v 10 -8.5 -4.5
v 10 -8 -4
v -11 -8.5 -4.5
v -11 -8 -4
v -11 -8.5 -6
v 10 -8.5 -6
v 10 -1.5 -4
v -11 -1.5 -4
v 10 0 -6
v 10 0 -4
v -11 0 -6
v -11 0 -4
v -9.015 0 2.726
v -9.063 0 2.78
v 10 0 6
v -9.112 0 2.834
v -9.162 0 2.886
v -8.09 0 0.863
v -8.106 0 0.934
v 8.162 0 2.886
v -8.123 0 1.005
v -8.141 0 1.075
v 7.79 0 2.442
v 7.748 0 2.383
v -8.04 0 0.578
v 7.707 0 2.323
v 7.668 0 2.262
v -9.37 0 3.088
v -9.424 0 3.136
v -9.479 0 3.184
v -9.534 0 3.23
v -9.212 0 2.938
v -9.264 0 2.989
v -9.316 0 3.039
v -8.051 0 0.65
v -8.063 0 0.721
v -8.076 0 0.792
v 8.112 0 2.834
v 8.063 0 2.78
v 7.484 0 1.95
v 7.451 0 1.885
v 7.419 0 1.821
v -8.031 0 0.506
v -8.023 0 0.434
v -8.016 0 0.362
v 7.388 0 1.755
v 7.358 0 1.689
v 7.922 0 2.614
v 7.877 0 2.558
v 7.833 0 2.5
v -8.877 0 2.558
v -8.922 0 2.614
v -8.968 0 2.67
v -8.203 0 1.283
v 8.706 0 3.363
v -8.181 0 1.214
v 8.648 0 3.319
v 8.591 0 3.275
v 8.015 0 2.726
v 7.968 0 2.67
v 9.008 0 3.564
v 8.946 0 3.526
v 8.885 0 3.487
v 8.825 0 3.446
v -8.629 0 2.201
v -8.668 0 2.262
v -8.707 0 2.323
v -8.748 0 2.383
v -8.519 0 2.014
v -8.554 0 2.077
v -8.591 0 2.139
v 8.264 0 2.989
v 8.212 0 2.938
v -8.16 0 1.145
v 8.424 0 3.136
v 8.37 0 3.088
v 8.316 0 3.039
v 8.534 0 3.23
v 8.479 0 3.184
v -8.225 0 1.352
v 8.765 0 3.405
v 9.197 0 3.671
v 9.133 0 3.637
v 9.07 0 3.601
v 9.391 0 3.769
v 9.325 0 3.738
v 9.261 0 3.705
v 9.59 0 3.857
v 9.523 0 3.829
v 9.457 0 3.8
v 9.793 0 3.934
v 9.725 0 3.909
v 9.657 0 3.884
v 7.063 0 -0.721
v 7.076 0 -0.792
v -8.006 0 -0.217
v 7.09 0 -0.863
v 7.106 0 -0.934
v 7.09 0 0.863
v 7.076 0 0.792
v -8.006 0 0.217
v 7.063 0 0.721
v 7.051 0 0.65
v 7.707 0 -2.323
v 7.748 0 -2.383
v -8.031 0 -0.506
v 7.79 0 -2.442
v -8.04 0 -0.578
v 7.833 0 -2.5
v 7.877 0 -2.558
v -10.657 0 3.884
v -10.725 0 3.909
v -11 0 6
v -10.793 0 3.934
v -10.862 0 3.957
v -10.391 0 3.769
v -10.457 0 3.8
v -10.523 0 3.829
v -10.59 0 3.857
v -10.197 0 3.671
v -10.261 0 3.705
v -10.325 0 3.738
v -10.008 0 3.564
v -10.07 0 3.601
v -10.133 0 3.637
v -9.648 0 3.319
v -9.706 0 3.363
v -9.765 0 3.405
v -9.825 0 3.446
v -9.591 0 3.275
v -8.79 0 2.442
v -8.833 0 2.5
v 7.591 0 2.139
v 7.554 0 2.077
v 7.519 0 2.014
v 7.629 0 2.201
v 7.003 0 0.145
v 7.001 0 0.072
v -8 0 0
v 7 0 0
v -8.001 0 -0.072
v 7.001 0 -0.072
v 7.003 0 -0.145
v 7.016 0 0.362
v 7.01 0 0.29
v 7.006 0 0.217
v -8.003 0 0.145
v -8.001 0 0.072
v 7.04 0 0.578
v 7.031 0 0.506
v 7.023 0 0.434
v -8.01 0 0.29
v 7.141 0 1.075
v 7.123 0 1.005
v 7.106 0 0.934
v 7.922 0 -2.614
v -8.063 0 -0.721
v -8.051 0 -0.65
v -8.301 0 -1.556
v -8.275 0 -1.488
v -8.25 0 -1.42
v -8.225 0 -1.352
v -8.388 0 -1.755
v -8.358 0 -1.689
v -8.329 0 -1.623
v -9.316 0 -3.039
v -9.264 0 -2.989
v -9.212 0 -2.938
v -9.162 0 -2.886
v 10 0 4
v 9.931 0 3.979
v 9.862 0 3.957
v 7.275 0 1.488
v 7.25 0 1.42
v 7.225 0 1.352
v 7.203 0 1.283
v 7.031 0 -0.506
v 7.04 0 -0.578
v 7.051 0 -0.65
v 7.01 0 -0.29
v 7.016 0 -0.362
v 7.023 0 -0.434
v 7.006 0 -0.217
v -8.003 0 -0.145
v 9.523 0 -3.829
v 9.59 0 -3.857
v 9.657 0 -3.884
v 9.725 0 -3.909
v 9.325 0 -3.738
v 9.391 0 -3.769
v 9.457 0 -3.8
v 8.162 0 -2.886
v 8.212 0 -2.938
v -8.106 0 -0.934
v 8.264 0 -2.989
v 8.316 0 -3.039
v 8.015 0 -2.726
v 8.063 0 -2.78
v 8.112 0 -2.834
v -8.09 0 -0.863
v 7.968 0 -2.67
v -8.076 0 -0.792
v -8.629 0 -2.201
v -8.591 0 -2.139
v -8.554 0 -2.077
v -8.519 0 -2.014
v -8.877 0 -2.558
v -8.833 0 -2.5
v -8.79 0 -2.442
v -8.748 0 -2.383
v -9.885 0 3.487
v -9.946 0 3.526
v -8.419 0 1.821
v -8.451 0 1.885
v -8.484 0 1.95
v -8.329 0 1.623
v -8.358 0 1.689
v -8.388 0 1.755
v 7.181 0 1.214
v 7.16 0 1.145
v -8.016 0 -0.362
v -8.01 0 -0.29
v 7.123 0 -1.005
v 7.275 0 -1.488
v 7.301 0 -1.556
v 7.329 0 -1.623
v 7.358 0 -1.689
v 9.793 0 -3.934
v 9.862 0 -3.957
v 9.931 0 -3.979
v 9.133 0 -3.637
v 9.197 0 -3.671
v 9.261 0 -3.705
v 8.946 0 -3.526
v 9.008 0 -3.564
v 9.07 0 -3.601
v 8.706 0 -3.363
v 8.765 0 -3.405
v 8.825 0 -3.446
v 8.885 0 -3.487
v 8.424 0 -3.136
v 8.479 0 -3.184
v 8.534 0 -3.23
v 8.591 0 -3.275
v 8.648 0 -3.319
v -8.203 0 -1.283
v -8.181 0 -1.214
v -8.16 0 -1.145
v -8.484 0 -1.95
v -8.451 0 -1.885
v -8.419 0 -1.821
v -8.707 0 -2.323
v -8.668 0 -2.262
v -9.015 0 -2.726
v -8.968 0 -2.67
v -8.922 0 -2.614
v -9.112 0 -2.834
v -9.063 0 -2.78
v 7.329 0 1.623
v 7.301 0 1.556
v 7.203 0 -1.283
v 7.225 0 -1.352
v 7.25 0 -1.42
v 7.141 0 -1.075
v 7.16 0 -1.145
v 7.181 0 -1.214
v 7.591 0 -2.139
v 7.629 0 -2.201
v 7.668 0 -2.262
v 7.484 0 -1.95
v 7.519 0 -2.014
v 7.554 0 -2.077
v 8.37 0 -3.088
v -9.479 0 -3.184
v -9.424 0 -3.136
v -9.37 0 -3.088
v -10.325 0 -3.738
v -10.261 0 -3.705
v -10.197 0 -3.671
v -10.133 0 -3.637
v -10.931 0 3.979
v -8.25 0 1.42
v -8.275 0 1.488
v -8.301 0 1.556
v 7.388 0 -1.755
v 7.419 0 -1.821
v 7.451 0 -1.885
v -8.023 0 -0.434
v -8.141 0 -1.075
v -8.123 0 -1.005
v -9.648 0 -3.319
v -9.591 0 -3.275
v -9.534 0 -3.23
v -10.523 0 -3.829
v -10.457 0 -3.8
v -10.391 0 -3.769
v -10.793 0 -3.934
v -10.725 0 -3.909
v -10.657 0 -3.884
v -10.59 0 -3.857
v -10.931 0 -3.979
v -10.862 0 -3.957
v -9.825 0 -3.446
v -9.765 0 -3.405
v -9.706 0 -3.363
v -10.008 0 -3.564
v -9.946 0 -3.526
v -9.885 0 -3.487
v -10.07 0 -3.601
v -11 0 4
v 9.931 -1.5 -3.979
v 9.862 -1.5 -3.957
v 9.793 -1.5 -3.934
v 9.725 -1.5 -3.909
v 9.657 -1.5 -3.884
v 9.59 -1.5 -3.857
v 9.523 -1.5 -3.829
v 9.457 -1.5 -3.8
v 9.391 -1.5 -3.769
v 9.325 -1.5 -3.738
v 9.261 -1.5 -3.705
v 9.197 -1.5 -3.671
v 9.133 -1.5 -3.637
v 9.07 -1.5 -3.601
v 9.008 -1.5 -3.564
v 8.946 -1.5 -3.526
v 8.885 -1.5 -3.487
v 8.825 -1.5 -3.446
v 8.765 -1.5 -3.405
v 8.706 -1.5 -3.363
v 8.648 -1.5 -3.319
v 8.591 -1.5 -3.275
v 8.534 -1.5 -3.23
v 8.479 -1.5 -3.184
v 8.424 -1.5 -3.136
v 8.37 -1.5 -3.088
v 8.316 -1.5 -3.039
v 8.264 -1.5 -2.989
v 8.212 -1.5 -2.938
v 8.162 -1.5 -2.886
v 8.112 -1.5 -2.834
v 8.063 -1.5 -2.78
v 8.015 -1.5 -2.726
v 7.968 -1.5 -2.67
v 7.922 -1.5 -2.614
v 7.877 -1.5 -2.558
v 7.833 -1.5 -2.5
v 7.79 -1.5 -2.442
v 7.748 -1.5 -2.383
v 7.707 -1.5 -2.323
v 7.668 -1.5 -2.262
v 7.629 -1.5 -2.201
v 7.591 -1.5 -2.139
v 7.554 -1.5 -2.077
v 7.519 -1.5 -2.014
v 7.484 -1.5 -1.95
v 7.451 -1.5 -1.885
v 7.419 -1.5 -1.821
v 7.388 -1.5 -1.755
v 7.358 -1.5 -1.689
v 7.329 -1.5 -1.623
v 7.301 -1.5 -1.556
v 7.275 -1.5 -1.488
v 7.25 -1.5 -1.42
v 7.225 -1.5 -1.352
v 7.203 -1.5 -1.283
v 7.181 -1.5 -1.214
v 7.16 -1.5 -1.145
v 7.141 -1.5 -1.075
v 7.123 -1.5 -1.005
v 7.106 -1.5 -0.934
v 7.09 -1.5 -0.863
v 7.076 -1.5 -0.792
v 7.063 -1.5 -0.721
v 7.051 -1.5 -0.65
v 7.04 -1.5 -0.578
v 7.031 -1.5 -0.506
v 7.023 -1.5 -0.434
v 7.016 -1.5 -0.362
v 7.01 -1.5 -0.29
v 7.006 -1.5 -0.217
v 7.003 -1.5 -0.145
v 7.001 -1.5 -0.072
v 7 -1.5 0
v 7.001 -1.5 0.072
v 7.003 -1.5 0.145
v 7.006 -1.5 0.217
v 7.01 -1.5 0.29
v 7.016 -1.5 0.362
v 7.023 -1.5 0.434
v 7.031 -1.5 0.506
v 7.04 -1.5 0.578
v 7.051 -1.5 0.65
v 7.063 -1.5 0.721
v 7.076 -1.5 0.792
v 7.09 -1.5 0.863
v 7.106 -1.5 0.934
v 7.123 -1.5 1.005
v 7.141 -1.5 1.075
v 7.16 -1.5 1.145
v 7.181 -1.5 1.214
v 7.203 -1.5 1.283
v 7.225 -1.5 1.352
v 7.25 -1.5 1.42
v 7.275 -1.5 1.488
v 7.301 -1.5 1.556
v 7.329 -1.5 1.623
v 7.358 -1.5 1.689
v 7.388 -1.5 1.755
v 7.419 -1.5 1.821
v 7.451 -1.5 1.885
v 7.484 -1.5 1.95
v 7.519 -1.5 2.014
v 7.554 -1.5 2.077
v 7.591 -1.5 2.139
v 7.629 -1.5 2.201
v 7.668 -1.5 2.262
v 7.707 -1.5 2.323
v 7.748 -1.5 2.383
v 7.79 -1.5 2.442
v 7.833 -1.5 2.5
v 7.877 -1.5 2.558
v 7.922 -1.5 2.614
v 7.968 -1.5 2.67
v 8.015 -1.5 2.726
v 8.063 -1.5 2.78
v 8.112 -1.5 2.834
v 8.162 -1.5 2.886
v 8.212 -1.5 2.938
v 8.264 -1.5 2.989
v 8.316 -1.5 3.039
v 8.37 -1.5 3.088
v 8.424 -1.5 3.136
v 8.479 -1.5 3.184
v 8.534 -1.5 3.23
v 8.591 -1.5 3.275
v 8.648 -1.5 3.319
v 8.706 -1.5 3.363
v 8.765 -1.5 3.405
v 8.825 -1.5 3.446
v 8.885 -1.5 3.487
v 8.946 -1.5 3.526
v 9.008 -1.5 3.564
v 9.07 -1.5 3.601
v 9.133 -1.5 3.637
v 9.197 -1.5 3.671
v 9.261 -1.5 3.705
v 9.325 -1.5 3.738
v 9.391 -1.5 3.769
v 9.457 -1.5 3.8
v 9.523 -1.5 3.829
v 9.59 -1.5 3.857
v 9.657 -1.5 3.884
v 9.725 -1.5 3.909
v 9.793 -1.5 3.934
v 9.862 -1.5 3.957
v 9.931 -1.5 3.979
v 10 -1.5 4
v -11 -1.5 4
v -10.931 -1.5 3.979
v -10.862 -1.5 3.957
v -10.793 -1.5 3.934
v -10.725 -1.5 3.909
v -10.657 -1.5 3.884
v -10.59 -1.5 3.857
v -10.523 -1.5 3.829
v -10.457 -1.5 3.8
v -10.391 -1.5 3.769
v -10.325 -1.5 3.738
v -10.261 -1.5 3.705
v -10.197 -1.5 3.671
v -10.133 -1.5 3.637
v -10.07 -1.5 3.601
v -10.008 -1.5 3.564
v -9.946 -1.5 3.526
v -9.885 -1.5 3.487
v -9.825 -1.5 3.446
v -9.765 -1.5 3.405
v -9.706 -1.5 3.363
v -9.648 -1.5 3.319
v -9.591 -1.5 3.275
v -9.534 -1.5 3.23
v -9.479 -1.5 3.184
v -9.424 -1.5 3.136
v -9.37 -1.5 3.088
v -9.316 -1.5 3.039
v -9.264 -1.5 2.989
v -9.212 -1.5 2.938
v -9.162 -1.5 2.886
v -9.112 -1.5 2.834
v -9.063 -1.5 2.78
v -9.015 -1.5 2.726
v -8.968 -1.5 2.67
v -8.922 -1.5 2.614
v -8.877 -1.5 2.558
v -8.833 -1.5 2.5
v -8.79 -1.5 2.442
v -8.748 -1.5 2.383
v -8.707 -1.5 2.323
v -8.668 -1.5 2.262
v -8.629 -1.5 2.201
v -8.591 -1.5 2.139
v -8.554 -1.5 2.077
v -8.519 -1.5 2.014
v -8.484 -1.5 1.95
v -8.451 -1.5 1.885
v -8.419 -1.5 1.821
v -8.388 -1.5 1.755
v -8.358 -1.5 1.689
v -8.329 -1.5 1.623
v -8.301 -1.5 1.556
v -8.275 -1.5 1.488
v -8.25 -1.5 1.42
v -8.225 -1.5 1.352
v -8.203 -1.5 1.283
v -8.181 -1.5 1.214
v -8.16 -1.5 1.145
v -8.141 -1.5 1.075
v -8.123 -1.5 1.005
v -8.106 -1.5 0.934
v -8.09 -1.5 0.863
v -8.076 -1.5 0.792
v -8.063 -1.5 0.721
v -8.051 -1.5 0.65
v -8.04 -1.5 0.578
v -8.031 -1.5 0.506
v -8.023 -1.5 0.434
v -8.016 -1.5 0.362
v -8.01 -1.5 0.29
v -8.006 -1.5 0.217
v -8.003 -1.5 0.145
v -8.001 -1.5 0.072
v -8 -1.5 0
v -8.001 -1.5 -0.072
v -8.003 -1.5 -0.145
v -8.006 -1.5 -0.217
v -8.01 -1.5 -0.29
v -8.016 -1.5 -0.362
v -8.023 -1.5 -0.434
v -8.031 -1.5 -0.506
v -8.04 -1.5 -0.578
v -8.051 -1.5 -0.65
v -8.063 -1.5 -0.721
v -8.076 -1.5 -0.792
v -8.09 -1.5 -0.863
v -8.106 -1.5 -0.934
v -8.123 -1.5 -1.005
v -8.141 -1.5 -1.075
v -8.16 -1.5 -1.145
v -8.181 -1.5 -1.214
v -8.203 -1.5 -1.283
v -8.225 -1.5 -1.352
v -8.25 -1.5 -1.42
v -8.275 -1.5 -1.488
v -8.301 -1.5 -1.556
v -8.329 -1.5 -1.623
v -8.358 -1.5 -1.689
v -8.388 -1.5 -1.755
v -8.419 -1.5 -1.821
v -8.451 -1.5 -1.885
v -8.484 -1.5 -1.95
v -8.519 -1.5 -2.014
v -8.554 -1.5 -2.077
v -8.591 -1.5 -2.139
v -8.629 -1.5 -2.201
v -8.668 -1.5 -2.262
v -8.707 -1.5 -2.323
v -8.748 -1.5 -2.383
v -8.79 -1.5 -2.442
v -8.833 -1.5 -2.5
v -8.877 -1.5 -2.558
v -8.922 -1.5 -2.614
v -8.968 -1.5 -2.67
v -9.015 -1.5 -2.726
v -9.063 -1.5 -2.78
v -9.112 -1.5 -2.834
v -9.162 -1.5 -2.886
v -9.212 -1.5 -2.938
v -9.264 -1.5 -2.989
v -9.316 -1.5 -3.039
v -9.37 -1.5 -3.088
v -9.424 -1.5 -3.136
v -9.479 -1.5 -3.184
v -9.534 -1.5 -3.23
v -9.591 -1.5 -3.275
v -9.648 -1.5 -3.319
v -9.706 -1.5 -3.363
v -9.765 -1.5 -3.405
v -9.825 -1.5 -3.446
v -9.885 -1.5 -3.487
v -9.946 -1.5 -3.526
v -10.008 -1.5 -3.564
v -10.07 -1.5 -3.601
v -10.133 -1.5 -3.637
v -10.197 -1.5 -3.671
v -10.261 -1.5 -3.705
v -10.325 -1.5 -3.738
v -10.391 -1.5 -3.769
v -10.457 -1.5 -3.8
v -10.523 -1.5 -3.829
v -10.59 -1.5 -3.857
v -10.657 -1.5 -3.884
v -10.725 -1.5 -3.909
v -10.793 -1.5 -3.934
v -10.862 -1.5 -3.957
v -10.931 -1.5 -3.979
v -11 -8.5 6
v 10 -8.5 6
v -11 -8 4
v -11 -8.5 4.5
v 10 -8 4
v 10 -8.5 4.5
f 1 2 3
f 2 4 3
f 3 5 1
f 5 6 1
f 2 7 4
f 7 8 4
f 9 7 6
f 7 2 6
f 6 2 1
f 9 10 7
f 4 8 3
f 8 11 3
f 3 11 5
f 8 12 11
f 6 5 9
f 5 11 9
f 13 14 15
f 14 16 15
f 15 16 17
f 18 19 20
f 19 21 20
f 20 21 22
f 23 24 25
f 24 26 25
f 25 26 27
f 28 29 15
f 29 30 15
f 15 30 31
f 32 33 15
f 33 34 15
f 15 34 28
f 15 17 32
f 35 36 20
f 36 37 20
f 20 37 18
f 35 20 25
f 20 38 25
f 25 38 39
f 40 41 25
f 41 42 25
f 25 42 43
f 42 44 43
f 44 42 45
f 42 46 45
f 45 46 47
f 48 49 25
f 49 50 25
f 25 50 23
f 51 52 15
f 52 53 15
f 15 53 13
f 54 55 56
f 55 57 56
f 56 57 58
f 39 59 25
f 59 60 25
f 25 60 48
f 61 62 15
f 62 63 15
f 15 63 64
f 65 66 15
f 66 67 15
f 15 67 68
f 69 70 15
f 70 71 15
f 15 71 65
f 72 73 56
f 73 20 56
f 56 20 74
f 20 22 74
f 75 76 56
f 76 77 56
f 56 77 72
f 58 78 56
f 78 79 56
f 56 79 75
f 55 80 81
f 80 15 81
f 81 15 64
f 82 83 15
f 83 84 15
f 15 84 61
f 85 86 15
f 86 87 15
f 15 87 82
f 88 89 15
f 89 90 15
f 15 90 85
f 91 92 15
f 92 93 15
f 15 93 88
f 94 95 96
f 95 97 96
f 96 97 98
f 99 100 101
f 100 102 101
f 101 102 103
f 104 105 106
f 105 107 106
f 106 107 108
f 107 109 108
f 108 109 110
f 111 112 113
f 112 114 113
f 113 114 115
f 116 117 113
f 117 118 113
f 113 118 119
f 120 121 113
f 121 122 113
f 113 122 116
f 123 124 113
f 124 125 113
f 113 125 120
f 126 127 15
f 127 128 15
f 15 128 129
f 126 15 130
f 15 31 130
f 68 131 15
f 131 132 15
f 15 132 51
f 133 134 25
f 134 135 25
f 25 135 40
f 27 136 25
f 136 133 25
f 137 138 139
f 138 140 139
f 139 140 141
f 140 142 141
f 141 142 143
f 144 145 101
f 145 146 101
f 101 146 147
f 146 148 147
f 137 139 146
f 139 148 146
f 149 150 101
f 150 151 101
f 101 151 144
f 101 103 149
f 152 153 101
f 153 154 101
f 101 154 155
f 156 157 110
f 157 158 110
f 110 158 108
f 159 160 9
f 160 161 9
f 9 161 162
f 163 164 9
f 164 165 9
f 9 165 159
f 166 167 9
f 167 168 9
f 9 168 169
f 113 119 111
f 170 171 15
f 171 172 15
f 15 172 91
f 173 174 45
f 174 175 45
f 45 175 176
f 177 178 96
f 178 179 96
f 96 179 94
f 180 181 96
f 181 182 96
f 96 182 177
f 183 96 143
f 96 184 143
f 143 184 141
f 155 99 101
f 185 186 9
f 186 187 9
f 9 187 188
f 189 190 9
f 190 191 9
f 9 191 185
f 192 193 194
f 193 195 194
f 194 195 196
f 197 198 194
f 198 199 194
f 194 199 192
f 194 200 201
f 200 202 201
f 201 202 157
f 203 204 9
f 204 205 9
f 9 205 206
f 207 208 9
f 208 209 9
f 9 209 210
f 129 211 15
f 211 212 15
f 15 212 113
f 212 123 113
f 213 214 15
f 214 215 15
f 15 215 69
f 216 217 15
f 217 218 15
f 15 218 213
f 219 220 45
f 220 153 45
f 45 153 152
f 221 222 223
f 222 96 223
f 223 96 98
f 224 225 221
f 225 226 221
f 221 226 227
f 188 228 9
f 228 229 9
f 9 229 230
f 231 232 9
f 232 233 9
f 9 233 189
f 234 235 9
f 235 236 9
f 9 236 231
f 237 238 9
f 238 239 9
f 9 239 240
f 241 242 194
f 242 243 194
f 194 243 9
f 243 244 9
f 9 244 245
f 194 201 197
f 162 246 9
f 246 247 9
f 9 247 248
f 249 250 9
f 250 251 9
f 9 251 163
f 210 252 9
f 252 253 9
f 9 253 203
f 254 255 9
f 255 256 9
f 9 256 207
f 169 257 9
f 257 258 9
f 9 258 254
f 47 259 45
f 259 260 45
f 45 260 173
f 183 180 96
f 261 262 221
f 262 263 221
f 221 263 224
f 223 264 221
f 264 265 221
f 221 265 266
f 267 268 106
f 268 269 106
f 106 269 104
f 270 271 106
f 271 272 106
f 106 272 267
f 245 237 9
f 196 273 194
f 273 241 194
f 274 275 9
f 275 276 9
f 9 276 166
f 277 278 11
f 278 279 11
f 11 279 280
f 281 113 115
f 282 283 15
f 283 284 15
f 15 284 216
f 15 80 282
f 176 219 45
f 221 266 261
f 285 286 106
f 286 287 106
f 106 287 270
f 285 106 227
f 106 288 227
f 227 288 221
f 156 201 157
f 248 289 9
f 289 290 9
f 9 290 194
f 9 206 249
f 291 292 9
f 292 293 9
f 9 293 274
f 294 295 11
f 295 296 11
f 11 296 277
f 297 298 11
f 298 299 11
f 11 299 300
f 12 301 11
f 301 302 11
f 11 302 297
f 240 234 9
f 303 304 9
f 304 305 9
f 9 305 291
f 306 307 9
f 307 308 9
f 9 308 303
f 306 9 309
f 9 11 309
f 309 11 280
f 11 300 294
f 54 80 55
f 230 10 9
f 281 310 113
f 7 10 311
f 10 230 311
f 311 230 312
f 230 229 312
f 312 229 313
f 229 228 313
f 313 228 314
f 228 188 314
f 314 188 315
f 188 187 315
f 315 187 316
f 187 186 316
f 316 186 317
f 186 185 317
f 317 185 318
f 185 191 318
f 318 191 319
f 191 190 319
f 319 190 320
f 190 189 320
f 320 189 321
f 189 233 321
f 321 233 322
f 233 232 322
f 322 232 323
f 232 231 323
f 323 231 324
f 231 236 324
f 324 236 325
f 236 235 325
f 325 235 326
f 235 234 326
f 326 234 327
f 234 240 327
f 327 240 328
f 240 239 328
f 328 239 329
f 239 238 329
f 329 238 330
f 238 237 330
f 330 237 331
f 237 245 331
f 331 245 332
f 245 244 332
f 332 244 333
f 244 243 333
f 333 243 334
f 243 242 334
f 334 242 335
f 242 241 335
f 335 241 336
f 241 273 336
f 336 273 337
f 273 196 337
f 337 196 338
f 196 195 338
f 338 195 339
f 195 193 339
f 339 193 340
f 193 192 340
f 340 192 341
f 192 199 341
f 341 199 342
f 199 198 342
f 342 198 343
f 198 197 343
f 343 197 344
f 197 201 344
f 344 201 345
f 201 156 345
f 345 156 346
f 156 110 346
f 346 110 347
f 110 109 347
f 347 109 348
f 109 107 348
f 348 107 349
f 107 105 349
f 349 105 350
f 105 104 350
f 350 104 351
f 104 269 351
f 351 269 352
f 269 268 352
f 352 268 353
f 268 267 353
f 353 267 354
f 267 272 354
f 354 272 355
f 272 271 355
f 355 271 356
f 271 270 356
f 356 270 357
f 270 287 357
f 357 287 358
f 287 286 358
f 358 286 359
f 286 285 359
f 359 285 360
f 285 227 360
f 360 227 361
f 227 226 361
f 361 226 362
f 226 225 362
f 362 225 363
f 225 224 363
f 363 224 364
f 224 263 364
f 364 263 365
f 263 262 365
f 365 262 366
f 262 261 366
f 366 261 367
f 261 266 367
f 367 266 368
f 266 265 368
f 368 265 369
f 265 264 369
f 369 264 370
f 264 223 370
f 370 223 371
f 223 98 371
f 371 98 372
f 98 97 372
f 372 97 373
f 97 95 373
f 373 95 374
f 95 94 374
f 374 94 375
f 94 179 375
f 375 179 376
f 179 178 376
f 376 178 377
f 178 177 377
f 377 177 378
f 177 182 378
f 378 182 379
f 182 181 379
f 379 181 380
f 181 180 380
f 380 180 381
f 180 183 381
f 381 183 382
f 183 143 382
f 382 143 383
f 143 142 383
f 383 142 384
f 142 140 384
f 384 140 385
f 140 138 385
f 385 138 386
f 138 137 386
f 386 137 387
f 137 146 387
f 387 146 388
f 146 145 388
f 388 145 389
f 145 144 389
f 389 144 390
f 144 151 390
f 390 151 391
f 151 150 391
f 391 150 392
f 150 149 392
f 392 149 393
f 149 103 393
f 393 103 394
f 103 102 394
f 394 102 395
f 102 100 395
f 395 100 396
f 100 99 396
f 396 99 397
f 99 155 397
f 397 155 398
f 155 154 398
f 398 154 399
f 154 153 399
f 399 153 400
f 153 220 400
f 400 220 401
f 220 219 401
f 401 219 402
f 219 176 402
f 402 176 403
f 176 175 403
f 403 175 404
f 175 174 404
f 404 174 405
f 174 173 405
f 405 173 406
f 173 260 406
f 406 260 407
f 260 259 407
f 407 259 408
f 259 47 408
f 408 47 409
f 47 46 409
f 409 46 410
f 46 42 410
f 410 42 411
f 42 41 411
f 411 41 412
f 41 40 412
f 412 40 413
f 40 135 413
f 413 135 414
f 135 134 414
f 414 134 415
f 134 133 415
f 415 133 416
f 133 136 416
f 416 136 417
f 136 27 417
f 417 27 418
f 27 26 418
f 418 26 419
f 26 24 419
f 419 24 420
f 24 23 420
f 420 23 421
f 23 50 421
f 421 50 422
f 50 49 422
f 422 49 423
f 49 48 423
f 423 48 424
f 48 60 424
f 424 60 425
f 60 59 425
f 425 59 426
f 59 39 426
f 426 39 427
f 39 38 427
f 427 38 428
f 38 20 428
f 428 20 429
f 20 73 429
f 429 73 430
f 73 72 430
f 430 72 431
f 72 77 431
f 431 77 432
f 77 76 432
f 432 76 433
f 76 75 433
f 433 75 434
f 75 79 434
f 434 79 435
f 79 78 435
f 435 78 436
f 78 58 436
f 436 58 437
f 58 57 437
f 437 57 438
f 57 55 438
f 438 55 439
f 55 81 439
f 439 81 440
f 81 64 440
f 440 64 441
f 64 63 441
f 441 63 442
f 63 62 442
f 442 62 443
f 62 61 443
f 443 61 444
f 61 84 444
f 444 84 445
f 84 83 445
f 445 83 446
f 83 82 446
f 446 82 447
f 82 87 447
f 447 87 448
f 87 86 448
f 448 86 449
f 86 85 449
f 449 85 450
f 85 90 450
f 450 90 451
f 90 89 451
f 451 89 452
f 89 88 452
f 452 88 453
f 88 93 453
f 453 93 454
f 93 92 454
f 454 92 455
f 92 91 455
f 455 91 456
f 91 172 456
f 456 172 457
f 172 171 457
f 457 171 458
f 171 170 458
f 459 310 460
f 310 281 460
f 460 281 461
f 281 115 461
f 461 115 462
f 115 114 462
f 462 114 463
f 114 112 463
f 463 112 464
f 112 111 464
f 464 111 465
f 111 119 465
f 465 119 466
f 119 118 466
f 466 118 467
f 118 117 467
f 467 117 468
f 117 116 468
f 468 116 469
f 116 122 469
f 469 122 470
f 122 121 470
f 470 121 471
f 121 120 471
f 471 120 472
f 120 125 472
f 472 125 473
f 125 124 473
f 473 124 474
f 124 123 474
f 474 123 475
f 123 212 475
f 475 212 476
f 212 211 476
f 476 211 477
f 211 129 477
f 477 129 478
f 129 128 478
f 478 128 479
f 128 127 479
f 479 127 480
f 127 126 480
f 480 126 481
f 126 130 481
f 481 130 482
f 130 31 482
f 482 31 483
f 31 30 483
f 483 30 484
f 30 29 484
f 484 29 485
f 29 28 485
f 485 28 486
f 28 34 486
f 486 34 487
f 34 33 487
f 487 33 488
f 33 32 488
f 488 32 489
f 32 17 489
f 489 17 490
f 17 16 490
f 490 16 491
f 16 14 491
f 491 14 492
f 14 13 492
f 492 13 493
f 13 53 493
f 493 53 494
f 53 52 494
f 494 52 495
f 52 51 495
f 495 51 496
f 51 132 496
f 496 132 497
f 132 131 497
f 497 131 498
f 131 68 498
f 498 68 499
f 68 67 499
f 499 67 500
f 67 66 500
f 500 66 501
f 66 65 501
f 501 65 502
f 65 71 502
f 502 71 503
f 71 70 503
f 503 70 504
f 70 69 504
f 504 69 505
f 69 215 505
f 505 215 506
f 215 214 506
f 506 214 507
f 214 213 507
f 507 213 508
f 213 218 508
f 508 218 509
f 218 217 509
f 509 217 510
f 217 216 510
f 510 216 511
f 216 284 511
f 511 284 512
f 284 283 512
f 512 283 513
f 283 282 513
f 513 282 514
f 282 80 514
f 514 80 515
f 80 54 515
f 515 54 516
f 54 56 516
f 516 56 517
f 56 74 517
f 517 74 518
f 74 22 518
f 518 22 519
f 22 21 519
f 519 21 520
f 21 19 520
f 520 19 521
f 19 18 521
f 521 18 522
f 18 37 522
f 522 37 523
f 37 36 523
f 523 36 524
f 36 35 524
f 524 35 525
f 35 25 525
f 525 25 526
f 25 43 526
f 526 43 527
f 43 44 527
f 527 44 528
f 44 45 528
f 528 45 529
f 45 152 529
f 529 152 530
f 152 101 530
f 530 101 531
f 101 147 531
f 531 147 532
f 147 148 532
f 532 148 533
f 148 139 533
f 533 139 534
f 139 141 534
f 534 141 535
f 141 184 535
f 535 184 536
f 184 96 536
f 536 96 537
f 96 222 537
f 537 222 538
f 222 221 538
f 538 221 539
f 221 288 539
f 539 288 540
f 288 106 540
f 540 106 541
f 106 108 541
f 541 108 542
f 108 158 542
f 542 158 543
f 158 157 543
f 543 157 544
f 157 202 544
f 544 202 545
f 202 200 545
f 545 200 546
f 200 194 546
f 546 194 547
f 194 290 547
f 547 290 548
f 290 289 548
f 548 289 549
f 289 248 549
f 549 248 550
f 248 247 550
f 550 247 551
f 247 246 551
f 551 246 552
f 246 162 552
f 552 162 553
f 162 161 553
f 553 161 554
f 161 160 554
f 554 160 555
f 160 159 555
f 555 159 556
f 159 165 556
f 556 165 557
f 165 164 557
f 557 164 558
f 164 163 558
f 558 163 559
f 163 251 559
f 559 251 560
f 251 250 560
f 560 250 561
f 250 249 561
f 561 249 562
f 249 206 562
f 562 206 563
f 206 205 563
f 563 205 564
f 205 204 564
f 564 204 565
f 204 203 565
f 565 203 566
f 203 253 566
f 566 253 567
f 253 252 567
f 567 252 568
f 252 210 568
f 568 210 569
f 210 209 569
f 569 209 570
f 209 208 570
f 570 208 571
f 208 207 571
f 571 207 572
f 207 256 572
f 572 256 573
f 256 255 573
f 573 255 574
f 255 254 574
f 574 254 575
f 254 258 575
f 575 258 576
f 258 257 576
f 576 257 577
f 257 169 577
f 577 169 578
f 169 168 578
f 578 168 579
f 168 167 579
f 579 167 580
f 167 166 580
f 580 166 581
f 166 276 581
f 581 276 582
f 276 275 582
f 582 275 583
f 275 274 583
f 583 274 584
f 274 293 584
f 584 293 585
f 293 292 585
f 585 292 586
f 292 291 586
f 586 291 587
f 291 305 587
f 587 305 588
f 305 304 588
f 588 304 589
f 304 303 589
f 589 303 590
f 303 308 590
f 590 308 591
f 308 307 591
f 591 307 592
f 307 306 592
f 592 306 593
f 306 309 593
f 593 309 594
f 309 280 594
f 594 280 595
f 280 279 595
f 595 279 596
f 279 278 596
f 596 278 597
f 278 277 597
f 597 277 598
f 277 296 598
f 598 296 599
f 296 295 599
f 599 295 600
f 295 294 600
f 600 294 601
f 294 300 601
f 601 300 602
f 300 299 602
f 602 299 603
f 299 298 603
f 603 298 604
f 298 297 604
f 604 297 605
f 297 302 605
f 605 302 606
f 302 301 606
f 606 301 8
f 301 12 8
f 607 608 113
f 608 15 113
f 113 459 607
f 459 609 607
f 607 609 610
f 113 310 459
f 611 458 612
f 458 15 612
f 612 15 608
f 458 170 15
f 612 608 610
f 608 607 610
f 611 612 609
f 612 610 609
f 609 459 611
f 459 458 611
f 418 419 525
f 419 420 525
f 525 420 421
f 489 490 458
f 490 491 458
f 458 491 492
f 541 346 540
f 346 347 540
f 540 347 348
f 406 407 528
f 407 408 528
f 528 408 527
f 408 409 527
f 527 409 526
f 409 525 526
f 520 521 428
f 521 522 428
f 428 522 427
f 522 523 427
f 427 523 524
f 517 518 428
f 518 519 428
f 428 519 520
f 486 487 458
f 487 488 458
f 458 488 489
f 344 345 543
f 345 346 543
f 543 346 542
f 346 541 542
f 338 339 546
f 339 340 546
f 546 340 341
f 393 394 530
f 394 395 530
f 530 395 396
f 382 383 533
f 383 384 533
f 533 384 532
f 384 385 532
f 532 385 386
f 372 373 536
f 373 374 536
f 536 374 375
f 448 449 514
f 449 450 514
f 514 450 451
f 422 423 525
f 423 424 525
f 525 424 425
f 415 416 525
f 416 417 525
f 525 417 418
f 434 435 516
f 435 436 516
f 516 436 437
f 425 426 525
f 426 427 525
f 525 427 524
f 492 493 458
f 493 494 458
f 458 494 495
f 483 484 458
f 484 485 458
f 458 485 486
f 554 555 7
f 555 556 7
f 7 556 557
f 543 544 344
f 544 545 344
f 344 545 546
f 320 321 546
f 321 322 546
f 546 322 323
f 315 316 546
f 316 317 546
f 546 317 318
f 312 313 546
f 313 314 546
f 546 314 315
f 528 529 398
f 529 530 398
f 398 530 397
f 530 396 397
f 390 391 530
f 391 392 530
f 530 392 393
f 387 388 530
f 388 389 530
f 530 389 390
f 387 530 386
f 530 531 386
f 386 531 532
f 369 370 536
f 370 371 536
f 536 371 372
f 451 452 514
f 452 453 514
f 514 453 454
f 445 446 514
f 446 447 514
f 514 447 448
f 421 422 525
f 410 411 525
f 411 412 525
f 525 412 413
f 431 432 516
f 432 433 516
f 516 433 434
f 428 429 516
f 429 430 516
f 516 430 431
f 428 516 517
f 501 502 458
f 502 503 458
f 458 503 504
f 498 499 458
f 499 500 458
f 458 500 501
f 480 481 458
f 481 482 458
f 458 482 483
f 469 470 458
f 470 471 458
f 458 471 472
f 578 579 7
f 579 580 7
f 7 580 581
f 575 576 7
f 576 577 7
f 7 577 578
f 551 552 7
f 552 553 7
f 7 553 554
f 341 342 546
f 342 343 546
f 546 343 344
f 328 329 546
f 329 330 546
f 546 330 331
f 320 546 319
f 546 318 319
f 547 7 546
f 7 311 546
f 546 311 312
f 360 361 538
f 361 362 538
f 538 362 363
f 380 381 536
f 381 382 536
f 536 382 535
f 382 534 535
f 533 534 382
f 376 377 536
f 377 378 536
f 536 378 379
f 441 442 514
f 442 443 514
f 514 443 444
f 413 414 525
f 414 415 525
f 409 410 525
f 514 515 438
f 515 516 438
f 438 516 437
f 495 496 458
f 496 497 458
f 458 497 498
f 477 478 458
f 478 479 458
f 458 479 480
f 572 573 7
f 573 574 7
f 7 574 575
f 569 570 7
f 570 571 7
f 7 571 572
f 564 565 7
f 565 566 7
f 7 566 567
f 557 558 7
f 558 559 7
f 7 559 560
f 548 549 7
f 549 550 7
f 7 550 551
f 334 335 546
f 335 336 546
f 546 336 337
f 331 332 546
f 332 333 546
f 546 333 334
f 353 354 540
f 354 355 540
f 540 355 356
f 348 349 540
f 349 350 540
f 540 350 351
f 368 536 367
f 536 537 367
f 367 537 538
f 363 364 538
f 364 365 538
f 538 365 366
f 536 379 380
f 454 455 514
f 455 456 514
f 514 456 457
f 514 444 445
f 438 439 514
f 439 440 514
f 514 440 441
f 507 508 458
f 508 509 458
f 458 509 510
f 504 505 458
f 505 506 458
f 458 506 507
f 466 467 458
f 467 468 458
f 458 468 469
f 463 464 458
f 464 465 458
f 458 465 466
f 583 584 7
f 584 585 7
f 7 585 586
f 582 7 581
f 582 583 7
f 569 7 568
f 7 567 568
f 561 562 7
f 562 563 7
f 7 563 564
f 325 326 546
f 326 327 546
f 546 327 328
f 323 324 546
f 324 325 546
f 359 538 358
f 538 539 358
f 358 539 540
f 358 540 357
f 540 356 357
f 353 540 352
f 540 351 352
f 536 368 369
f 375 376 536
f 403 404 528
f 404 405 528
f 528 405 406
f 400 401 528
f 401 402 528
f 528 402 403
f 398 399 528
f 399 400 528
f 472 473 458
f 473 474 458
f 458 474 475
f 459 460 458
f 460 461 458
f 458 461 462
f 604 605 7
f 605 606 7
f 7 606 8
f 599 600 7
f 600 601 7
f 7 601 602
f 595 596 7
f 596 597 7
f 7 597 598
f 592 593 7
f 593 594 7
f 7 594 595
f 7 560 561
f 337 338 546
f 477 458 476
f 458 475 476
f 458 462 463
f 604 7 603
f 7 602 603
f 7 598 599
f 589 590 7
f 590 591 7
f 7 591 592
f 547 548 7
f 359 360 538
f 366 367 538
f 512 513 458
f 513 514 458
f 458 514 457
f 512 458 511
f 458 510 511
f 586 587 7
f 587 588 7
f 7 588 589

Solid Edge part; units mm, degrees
sketch "Sketch1" plane through (0, 0, 0) normal (0, -1, 0) x (1, 0, 0)
  line L0 (10, 6) -> (-11, 6)
  line L1 (-11, 6) -> (-11, -6)
  line L2 (-11, -6) -> (10, -6)
  line L3 (10, -6) -> (10, 6)
  dimension "D1" = 21
  dimension "D2" = 12
extrude "Protrusion1" add sketch "Sketch1" along normal blind 1.5
sketch "Sketch2" plane through (0, -1.5, 0) normal (0, -1, 0) x (-1, 0, 0)
  line L0 (11, -6) -> (11, -4)
  line L1 (11, -4) -> (-10, -4)
  line L2 (-10, -4) -> (-10, -6)
  line L3 (-10, -6) -> (11, -6)
  line L4 (11, 6) -> (11, 4)
  line L5 (11, 4) -> (-10, 4)
  line L6 (-10, 4) -> (-10, 6)
  line L7 (-10, 6) -> (11, 6)
  dimension "D1" = 2
  dimension "D2" = 2
extrude "Extrusionsausprägung_7" add sketch "Sketch2" along normal blind 7
sketch "Sketch3" plane through (0, 0, 0) normal (0, 1, 0) x (1, 0, 0)
  arc A0 (-11, 4) -> (-11, -4) centre (-12.1667, 0) cw
  line L0 (-11, 4) -> (-11, -4)
  arc A1 (10, 4) -> (10, -4) centre (11.1667, 0) ccw
  line L1 (10, 4) -> (10, -4)
  dimension "D1" = 3
  dimension "D2" = 3
extrude "Cutout1" cut sketch "Sketch3" against normal through all
chamfer "Fase_4" distance 0.5 angle 45 2 edges at (-0.5, -8.5, 4) (-0.5, -8.5, -4)
properties material "ABS-Plastik, mittelfest"
